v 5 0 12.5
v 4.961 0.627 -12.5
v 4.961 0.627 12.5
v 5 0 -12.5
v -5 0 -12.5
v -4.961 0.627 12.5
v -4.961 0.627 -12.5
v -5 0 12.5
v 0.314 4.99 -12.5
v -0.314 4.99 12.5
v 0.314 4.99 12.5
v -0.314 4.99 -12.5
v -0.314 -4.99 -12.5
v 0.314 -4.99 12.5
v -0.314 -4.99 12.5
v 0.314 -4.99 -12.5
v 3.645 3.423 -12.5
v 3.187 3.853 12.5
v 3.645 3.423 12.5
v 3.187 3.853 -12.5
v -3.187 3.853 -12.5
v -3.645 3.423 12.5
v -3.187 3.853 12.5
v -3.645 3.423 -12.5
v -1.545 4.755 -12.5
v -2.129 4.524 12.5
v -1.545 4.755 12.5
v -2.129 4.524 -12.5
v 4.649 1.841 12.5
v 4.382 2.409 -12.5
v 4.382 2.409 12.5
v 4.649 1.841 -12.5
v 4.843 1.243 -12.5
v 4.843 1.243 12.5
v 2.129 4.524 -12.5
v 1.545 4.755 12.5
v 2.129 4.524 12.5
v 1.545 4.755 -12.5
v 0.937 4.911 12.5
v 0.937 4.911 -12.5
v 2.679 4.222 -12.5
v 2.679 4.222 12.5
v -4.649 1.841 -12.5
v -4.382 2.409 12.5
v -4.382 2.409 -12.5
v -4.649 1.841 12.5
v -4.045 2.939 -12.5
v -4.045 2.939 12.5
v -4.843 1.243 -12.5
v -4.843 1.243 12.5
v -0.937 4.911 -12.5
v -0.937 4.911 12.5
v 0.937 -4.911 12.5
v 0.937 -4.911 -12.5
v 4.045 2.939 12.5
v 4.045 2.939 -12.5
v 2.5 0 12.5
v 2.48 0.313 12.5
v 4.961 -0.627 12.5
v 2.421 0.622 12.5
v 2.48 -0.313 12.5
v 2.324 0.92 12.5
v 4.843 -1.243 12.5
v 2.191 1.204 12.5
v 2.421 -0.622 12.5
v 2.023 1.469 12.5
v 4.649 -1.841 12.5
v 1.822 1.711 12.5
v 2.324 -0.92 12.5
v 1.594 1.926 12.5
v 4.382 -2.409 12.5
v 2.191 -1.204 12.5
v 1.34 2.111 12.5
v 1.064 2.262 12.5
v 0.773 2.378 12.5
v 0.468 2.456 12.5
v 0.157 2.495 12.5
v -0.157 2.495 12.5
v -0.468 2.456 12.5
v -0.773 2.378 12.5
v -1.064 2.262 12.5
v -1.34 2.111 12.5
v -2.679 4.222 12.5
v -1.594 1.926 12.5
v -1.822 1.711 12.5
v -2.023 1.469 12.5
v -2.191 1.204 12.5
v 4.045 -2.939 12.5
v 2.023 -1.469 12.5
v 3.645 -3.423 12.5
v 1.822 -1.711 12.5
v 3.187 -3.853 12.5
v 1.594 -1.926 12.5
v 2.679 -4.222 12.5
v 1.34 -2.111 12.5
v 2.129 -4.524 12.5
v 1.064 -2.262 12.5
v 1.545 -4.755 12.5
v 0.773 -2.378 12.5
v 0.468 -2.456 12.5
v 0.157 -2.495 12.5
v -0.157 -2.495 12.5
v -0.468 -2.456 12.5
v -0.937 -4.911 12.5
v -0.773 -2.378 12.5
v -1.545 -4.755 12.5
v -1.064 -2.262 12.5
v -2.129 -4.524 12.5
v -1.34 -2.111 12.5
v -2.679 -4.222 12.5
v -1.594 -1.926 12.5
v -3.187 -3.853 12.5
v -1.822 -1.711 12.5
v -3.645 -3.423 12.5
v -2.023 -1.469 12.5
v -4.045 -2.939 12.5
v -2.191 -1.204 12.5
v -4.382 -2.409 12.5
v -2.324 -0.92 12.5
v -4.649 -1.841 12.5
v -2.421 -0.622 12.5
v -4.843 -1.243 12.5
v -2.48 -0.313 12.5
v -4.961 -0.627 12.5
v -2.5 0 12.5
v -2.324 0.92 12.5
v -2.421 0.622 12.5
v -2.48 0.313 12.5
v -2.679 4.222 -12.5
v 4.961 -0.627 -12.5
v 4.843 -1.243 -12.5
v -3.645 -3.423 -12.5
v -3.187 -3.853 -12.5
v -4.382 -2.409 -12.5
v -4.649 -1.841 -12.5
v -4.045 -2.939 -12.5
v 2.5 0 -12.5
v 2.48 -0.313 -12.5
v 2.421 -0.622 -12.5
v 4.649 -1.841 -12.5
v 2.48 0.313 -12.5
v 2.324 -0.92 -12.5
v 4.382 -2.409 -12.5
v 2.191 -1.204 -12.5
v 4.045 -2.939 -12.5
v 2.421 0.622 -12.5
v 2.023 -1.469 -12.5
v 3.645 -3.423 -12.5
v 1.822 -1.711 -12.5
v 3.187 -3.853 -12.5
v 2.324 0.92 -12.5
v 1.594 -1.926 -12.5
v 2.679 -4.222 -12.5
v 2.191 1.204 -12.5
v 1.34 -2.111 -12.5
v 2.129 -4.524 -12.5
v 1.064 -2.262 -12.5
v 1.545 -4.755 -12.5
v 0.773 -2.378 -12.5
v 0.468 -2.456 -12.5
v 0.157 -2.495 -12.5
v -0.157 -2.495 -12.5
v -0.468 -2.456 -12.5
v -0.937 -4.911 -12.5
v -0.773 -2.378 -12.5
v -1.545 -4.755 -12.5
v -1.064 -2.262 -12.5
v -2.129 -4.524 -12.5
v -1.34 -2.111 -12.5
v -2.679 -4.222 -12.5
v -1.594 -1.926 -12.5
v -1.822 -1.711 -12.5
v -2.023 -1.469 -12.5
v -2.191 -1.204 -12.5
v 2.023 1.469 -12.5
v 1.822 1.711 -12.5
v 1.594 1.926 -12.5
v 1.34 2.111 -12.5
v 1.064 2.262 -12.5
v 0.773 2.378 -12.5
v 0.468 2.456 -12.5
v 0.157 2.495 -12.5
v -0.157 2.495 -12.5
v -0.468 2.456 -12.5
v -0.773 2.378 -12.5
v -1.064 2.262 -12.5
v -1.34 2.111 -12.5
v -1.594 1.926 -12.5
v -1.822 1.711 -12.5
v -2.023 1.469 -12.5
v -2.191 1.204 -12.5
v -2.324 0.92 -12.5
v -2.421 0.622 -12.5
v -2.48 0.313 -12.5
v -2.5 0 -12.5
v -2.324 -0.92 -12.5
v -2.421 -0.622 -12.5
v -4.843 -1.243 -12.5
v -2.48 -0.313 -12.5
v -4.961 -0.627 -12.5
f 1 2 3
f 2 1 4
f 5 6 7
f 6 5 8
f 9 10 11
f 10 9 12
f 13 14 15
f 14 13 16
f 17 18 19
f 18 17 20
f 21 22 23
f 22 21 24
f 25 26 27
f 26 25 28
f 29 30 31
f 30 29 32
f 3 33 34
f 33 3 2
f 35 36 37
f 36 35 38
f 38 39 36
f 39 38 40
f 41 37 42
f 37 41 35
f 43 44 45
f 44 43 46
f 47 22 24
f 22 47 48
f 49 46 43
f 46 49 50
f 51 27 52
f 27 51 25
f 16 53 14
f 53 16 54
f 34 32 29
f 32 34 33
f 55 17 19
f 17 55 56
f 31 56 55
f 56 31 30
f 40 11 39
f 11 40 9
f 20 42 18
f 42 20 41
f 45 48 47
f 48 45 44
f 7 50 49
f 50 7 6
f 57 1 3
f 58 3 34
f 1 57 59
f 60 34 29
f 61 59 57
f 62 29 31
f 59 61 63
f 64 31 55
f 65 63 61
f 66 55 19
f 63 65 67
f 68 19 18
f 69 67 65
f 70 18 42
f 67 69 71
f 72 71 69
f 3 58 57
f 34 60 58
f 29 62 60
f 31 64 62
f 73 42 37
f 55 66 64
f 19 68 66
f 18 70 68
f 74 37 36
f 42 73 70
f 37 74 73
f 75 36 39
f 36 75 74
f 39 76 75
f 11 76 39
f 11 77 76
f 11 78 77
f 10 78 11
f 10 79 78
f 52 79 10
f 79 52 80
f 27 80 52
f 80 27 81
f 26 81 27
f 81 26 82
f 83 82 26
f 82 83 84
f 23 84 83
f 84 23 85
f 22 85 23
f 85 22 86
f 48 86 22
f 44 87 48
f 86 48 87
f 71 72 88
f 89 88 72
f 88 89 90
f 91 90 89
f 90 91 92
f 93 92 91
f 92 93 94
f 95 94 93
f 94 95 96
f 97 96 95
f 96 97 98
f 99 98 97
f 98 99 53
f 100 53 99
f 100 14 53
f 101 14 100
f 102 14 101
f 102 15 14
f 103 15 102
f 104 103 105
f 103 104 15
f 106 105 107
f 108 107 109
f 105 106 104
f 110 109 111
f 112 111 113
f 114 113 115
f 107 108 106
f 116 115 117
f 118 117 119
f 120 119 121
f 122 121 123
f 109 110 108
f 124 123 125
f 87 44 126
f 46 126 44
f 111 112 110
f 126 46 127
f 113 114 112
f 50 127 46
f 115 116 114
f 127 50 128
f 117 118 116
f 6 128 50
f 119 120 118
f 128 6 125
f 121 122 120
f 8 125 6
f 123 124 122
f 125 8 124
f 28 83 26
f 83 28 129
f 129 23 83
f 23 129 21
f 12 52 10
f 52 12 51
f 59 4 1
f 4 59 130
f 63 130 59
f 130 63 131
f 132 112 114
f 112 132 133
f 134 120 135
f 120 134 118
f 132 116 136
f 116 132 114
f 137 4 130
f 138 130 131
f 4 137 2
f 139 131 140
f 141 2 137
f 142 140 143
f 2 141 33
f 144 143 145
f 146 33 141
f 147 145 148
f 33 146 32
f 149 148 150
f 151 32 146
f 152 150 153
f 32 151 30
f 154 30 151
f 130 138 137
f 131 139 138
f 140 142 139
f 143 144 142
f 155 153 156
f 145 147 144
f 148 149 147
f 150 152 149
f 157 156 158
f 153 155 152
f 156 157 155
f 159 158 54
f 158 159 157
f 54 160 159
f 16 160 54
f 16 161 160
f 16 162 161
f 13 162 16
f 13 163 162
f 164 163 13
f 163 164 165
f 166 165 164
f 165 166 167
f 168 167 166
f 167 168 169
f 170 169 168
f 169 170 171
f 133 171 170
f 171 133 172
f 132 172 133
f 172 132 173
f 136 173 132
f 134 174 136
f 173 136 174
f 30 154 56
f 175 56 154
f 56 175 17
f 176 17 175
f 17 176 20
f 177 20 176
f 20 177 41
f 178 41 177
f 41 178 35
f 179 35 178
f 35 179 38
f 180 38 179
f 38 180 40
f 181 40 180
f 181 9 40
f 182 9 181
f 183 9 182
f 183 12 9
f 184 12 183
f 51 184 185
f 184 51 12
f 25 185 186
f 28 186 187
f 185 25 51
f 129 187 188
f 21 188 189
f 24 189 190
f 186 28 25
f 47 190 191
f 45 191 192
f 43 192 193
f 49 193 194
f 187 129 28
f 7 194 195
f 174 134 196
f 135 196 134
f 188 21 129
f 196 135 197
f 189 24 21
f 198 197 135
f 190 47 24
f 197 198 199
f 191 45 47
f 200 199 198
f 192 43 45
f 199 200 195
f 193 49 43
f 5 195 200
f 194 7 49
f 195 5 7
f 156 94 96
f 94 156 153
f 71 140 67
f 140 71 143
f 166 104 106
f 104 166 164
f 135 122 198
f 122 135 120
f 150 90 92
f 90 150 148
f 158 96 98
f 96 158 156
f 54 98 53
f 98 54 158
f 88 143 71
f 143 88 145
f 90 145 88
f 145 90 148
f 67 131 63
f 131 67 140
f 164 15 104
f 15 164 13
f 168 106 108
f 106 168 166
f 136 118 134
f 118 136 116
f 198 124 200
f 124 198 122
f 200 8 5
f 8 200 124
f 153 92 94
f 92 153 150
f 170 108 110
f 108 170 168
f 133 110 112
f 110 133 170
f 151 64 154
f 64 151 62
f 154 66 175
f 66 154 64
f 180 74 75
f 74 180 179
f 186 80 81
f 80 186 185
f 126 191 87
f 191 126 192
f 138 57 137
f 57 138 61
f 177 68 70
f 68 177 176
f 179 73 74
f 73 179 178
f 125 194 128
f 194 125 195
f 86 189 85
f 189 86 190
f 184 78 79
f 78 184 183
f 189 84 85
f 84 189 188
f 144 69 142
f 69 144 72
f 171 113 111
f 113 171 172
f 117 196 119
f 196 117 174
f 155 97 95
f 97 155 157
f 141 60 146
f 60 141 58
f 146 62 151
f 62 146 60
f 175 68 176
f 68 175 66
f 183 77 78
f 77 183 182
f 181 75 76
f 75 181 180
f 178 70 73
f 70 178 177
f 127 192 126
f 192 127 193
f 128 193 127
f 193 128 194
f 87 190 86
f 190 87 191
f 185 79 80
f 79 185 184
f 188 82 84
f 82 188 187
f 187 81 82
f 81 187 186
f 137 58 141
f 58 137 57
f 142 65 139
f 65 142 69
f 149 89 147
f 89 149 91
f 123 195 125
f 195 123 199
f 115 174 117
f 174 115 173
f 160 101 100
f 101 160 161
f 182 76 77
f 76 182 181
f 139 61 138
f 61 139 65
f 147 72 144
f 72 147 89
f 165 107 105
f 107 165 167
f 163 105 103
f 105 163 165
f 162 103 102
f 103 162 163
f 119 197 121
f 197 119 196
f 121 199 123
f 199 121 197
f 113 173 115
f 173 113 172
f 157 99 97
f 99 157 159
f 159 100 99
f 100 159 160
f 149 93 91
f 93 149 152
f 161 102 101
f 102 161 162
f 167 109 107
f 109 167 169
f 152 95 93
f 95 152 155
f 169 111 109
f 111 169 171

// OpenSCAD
$fn = 50;


difference() {
	union() {
		translate(v = [0, 0, -12.5000000000]) {
			cylinder(h = 25, r = 5.0000000000);
		}
	}
	union() {
		translate(v = [0, 0, -100.0000000000]) {
			cylinder(h = 200, r = 2.5000000000);
		}
	}
}
